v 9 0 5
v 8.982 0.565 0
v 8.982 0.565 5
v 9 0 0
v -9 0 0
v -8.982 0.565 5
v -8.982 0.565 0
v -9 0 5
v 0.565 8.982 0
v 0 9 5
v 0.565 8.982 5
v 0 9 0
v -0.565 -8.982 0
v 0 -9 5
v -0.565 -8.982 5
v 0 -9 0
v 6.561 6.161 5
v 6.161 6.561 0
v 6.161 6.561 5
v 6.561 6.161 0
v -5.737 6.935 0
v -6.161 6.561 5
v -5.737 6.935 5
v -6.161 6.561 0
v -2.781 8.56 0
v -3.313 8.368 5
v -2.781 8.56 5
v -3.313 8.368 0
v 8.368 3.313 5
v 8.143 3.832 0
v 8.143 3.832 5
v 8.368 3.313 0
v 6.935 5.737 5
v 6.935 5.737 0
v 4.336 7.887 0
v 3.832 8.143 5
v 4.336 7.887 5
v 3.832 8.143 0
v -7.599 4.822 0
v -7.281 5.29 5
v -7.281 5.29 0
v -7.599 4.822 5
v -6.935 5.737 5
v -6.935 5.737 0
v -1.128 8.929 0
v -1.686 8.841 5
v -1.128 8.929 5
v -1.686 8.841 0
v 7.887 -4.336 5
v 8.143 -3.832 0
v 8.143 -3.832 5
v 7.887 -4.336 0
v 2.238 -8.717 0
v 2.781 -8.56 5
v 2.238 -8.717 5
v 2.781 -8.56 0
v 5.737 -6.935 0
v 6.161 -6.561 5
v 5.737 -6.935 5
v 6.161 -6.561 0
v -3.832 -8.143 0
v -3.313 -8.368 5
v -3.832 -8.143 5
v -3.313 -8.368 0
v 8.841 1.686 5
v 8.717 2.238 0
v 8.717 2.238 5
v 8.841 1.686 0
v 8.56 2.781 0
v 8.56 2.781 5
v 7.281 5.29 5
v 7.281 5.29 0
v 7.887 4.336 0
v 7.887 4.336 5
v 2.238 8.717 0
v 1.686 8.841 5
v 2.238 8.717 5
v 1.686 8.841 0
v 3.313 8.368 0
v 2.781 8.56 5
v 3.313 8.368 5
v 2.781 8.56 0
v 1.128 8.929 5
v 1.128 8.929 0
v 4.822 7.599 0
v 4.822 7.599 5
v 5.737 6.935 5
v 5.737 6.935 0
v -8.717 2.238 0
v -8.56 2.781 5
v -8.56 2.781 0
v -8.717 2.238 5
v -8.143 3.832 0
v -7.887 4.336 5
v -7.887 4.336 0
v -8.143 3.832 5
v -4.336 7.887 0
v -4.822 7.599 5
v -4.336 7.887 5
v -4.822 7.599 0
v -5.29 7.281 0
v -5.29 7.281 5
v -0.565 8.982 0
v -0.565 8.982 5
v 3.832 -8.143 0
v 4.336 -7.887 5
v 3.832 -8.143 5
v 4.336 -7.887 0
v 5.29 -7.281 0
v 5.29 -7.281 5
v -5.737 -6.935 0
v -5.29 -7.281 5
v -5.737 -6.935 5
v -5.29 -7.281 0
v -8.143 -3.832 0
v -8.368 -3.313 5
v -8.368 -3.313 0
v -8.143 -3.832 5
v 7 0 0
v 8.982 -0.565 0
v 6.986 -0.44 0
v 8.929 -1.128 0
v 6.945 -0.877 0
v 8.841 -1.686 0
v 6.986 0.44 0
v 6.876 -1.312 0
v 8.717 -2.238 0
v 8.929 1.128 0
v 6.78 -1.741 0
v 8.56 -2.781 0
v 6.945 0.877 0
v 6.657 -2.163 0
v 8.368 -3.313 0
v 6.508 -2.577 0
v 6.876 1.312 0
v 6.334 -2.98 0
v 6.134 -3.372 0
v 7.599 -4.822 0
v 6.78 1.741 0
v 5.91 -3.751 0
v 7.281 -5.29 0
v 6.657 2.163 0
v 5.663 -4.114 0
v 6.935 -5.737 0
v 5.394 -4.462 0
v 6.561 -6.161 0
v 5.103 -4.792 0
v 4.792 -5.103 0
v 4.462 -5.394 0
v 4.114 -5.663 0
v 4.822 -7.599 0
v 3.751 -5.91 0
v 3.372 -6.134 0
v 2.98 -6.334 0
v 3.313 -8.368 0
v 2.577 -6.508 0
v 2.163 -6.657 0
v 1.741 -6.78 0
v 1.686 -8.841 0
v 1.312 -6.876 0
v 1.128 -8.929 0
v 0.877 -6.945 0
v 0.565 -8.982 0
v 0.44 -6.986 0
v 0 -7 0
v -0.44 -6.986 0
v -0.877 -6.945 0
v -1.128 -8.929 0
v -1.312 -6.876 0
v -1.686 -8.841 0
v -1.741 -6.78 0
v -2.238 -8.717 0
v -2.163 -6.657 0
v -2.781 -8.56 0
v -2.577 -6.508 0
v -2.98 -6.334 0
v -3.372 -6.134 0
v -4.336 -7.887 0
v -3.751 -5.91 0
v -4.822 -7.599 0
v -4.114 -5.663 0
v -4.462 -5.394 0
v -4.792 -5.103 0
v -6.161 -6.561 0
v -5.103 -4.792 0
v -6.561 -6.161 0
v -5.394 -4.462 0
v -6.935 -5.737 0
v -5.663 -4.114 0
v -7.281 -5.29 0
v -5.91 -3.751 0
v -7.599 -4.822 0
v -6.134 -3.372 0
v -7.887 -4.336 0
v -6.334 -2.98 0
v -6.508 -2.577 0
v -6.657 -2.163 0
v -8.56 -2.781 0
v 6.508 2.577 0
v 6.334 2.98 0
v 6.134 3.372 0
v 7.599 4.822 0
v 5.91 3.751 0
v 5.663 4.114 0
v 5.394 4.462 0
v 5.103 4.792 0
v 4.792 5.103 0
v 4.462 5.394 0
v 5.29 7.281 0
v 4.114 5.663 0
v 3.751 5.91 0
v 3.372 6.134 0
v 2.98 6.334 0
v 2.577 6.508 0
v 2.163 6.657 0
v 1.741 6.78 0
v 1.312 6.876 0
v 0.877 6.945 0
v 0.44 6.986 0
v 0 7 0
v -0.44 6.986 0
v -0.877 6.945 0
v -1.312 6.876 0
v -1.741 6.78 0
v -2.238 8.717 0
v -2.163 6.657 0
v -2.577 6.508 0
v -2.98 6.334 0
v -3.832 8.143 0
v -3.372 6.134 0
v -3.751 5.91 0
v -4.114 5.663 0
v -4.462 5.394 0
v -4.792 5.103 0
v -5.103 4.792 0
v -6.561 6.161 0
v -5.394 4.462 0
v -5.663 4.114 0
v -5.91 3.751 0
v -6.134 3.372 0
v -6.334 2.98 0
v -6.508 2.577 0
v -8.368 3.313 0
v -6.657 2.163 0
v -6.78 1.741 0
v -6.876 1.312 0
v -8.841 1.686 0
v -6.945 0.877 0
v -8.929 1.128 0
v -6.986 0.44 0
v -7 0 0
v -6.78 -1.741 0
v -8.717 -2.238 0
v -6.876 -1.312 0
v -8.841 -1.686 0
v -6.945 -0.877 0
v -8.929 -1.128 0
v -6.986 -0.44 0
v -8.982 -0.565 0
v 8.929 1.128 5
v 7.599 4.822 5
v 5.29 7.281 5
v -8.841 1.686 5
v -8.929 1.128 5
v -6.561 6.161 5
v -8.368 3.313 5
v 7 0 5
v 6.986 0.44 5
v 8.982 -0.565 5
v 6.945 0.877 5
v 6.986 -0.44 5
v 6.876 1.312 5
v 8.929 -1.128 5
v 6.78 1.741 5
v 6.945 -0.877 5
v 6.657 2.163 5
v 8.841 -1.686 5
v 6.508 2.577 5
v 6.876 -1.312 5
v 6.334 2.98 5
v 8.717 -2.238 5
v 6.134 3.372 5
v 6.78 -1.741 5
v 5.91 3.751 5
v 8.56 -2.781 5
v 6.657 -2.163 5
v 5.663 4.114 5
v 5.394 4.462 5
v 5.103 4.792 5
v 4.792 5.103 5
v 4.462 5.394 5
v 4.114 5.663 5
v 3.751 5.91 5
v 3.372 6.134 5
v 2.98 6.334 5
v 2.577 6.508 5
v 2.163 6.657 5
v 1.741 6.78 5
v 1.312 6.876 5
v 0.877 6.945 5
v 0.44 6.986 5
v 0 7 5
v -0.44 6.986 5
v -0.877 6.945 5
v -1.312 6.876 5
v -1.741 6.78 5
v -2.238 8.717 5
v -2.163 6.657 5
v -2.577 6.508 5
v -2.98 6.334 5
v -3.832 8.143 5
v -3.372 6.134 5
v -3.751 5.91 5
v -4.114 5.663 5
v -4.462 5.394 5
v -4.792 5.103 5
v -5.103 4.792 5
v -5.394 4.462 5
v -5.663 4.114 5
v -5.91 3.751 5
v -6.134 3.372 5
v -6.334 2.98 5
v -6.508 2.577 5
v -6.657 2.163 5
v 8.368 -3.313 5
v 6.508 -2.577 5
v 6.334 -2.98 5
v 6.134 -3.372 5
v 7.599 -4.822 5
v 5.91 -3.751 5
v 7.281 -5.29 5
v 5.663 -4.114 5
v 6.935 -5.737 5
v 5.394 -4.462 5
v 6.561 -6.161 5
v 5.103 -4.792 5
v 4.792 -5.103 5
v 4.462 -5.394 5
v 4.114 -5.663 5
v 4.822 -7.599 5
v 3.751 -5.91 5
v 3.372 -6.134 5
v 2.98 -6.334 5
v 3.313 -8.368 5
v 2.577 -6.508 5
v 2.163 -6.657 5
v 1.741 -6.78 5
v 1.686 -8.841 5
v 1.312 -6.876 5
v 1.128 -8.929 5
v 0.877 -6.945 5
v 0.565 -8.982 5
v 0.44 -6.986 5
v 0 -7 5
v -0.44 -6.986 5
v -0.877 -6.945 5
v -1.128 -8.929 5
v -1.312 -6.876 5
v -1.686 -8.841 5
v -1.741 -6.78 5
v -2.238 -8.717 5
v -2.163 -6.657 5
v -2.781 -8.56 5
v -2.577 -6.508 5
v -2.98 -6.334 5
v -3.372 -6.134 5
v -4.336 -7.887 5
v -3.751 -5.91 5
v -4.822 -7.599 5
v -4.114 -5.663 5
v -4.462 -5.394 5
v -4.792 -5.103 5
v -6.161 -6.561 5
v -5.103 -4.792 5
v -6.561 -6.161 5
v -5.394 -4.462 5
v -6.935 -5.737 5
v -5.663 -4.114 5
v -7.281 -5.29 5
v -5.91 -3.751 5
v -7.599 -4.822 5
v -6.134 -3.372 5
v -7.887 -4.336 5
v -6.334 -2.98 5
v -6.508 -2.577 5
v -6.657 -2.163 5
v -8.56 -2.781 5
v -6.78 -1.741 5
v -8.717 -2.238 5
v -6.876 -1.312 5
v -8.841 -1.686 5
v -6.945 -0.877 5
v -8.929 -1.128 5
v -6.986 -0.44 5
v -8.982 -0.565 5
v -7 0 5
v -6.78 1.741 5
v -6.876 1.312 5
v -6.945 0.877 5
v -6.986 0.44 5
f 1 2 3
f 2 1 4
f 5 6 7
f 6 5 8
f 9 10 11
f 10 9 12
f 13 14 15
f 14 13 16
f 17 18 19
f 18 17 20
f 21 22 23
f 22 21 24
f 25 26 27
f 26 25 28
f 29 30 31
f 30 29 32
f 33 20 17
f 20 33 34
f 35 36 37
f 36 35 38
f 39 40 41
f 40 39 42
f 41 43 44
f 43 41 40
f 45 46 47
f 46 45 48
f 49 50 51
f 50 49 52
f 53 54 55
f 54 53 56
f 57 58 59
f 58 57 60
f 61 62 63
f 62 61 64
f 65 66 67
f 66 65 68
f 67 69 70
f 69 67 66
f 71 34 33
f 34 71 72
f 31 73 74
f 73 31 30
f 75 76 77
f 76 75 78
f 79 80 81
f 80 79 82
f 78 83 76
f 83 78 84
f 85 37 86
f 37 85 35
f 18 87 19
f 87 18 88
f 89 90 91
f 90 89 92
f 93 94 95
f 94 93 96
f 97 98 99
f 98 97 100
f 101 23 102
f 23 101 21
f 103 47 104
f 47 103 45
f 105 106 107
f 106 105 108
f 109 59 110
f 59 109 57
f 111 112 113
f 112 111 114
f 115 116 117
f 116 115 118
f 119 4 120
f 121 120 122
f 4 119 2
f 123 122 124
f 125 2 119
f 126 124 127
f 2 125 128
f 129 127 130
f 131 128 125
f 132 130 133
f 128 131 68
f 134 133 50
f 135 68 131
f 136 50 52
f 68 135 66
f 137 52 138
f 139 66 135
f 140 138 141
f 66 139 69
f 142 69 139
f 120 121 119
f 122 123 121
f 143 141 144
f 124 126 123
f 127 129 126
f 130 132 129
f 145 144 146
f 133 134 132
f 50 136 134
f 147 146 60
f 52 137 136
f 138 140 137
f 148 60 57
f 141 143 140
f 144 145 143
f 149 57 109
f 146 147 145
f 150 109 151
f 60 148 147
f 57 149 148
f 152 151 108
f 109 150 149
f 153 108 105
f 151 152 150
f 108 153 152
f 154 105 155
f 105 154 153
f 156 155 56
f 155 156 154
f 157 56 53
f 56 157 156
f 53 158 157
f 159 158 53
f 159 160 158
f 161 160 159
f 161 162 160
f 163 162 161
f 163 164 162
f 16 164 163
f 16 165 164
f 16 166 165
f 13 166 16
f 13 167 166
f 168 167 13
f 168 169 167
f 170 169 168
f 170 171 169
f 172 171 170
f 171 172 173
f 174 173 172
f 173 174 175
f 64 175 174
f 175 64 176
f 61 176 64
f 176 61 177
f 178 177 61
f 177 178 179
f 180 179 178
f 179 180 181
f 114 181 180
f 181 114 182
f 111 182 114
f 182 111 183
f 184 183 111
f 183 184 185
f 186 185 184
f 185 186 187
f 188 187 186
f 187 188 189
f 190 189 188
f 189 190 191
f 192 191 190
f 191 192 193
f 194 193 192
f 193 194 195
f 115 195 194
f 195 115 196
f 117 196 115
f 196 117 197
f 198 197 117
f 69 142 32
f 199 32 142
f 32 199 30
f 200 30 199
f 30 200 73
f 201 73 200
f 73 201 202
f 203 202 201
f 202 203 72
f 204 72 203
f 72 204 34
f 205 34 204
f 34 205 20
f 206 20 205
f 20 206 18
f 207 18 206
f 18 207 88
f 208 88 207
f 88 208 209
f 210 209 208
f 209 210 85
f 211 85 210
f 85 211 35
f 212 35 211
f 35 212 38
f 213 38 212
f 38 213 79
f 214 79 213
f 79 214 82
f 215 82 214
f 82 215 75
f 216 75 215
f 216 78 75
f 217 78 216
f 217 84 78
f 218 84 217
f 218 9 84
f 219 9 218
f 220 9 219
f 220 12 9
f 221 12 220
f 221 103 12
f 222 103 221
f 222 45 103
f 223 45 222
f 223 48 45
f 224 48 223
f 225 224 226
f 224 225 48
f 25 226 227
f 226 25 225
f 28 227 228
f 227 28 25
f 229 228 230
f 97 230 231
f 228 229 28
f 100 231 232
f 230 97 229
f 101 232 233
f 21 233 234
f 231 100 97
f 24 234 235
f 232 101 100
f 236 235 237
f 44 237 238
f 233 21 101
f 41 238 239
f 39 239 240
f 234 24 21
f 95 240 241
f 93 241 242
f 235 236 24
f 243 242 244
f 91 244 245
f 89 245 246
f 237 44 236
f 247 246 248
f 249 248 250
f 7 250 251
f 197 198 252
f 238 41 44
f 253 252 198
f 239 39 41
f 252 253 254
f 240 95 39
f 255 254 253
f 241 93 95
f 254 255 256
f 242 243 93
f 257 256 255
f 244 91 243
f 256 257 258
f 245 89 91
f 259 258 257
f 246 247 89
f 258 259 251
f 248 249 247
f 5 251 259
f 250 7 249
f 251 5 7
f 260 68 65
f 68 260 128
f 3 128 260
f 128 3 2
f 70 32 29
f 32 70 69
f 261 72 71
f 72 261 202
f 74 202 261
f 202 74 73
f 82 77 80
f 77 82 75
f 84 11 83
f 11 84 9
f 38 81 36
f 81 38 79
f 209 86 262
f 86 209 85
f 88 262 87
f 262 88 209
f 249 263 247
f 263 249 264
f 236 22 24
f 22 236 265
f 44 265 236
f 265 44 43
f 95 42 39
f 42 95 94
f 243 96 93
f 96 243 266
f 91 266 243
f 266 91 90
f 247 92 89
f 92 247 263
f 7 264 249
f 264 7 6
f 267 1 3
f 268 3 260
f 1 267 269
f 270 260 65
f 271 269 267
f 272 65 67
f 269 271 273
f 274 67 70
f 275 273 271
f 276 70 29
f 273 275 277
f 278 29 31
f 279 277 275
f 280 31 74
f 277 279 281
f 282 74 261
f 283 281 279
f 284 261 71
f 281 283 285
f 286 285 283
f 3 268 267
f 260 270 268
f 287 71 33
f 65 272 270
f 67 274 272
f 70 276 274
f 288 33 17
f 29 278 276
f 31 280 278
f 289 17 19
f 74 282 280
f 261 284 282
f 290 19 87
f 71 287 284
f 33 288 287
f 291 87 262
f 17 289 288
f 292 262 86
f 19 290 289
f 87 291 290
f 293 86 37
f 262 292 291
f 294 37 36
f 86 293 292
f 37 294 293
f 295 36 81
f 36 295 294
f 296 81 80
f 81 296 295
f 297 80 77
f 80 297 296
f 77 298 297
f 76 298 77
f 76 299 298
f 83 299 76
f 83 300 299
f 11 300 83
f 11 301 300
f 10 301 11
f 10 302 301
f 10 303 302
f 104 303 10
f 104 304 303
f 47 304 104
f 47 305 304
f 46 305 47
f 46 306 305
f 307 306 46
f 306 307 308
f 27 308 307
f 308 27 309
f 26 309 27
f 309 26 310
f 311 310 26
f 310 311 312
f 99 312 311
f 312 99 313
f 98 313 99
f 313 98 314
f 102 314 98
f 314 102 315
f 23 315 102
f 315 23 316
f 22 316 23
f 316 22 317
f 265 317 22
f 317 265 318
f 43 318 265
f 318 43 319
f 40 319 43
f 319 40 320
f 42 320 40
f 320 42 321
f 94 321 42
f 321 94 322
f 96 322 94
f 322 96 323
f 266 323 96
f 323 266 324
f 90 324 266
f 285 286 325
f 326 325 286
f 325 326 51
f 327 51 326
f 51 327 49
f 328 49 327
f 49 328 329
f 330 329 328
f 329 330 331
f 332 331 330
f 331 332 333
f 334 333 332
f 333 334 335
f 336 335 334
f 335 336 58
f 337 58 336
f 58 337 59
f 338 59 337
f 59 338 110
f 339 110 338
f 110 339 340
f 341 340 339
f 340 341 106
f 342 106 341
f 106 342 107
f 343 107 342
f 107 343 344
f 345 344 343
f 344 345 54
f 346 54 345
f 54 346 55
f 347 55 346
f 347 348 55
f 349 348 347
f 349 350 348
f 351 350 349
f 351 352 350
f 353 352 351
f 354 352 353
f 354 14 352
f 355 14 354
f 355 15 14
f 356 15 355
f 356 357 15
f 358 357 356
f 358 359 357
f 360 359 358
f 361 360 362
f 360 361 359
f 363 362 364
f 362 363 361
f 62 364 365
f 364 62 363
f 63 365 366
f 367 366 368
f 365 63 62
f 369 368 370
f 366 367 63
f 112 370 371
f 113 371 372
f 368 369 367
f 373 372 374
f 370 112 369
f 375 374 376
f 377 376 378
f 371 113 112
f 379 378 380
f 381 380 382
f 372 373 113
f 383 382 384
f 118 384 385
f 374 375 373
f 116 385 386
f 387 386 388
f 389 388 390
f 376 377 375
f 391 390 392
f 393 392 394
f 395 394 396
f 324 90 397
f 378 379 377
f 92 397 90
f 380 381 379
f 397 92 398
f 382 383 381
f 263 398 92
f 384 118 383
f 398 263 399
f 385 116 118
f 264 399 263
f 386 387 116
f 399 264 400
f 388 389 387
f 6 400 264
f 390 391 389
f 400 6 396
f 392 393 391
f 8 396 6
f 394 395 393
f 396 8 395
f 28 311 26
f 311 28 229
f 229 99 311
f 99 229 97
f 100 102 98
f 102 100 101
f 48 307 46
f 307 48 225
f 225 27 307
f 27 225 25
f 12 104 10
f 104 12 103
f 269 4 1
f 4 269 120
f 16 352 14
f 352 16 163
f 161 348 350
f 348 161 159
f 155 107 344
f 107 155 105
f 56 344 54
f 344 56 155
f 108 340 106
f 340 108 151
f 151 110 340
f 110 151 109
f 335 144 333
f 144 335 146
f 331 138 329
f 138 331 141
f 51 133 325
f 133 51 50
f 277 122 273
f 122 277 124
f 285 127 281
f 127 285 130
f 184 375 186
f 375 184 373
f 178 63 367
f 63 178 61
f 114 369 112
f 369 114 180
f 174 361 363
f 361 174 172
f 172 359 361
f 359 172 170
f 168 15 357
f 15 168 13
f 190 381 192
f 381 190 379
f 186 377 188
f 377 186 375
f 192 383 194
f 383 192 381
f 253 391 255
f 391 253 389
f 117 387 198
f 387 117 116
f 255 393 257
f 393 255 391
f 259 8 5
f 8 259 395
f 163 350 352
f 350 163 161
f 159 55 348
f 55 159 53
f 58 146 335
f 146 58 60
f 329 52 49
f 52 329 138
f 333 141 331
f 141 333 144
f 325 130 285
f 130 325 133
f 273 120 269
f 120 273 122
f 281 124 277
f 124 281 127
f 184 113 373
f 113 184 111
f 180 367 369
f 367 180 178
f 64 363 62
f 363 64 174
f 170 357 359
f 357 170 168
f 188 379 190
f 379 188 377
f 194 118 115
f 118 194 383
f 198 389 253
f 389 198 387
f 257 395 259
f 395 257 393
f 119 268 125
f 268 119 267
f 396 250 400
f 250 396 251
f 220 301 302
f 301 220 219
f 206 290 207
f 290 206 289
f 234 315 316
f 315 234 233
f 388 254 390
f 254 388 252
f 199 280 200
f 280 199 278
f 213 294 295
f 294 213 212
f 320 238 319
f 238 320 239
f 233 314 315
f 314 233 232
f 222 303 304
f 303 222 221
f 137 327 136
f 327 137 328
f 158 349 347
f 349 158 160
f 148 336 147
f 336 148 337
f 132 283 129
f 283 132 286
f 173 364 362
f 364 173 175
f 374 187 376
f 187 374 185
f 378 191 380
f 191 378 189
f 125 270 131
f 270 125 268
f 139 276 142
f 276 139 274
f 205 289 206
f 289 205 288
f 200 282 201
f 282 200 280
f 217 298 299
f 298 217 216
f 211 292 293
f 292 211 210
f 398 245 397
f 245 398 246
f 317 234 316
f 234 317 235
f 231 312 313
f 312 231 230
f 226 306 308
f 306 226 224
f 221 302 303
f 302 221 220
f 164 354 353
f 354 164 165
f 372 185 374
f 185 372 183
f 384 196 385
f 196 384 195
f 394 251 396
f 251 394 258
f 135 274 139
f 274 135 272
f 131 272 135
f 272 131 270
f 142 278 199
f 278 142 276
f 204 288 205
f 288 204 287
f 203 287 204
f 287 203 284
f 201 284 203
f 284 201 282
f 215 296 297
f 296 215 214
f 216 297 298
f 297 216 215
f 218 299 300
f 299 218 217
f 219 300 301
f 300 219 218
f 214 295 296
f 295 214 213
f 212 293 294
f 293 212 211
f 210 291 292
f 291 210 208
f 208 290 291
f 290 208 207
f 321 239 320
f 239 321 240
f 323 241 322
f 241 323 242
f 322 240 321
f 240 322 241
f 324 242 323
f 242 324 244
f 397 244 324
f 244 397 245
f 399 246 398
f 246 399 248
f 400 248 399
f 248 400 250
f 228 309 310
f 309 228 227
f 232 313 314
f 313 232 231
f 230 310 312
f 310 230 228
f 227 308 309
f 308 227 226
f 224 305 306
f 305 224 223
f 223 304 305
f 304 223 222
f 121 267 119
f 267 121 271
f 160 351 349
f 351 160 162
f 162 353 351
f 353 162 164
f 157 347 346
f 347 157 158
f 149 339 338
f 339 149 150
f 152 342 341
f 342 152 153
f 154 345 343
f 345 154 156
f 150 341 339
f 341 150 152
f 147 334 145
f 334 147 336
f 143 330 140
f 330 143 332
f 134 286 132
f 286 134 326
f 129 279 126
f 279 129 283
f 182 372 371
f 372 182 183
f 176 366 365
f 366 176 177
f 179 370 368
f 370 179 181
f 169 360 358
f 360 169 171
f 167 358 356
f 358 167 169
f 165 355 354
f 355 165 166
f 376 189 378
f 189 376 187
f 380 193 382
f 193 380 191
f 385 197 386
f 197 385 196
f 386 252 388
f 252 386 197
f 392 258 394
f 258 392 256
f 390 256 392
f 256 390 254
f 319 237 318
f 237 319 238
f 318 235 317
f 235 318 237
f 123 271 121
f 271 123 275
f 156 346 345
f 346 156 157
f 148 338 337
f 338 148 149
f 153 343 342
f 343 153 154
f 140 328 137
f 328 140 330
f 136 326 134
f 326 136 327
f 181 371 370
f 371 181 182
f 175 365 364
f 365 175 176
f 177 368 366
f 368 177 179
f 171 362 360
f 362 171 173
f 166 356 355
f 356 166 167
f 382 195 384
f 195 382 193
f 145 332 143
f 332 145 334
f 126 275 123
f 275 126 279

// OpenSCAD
/*
     Cone and Coupler generator by concretedog
All dimensions in mm
CC BY-NC-SA 3.0

*/

nose_length=55;         //Length of the nosecone (not including the shoulder)
shoulder_length=5;     //Length of the shoulder 
coupler_radius=24.1/2;	 //Radius of the coupling ring also shoulder radius of nosecone that sits inside the tube
body_ext_radius=25.3/2;	 //Radius of the outside of the body tube 
coupler_length=50;      //Length of the coupling tube
$fn = 100;              //Number of fragments modeled around the circle-  
                         //-the higher the $fn the smoother the surface but
                         //-takes longer to render. 100 is fine for most!

 
/*      
union(){
    
    
  	difference() {
		cylinder(h=shoulder_length, r1=coupler_radius, r2=coupler_radius);
     
      cylinder(60,19.5/2,19.5/2);

    }
    
	translate ([0,0,shoulder_length]) scale([1,1,nose_length/body_ext_radius]) 
    difference() {
     
		sphere(r=body_ext_radius);
           cylinder(60,19.5/2,19.5/2);
		translate ([0,0,-body_ext_radius*0.5]) cube(size=[body_ext_radius*2,body_ext_radius*2,body_ext_radius],center=true);
	}
    
}

//##### Coupler code section #######

*/
/*
translate([50,50,0]) { //translate just moves coupler away from nosecone...need to move it more if doing a big nosecone!!
    difference() {
        cylinder(h=coupler_length, r1=coupler_radius, r2=coupler_radius);
        cylinder(h=coupler_length, r1=coupler_radius-4, r2=coupler_radius-4);
    }
}
*/

difference(){
    cylinder(5,18/2,18/2);
    cylinder(5,7,7);
}
